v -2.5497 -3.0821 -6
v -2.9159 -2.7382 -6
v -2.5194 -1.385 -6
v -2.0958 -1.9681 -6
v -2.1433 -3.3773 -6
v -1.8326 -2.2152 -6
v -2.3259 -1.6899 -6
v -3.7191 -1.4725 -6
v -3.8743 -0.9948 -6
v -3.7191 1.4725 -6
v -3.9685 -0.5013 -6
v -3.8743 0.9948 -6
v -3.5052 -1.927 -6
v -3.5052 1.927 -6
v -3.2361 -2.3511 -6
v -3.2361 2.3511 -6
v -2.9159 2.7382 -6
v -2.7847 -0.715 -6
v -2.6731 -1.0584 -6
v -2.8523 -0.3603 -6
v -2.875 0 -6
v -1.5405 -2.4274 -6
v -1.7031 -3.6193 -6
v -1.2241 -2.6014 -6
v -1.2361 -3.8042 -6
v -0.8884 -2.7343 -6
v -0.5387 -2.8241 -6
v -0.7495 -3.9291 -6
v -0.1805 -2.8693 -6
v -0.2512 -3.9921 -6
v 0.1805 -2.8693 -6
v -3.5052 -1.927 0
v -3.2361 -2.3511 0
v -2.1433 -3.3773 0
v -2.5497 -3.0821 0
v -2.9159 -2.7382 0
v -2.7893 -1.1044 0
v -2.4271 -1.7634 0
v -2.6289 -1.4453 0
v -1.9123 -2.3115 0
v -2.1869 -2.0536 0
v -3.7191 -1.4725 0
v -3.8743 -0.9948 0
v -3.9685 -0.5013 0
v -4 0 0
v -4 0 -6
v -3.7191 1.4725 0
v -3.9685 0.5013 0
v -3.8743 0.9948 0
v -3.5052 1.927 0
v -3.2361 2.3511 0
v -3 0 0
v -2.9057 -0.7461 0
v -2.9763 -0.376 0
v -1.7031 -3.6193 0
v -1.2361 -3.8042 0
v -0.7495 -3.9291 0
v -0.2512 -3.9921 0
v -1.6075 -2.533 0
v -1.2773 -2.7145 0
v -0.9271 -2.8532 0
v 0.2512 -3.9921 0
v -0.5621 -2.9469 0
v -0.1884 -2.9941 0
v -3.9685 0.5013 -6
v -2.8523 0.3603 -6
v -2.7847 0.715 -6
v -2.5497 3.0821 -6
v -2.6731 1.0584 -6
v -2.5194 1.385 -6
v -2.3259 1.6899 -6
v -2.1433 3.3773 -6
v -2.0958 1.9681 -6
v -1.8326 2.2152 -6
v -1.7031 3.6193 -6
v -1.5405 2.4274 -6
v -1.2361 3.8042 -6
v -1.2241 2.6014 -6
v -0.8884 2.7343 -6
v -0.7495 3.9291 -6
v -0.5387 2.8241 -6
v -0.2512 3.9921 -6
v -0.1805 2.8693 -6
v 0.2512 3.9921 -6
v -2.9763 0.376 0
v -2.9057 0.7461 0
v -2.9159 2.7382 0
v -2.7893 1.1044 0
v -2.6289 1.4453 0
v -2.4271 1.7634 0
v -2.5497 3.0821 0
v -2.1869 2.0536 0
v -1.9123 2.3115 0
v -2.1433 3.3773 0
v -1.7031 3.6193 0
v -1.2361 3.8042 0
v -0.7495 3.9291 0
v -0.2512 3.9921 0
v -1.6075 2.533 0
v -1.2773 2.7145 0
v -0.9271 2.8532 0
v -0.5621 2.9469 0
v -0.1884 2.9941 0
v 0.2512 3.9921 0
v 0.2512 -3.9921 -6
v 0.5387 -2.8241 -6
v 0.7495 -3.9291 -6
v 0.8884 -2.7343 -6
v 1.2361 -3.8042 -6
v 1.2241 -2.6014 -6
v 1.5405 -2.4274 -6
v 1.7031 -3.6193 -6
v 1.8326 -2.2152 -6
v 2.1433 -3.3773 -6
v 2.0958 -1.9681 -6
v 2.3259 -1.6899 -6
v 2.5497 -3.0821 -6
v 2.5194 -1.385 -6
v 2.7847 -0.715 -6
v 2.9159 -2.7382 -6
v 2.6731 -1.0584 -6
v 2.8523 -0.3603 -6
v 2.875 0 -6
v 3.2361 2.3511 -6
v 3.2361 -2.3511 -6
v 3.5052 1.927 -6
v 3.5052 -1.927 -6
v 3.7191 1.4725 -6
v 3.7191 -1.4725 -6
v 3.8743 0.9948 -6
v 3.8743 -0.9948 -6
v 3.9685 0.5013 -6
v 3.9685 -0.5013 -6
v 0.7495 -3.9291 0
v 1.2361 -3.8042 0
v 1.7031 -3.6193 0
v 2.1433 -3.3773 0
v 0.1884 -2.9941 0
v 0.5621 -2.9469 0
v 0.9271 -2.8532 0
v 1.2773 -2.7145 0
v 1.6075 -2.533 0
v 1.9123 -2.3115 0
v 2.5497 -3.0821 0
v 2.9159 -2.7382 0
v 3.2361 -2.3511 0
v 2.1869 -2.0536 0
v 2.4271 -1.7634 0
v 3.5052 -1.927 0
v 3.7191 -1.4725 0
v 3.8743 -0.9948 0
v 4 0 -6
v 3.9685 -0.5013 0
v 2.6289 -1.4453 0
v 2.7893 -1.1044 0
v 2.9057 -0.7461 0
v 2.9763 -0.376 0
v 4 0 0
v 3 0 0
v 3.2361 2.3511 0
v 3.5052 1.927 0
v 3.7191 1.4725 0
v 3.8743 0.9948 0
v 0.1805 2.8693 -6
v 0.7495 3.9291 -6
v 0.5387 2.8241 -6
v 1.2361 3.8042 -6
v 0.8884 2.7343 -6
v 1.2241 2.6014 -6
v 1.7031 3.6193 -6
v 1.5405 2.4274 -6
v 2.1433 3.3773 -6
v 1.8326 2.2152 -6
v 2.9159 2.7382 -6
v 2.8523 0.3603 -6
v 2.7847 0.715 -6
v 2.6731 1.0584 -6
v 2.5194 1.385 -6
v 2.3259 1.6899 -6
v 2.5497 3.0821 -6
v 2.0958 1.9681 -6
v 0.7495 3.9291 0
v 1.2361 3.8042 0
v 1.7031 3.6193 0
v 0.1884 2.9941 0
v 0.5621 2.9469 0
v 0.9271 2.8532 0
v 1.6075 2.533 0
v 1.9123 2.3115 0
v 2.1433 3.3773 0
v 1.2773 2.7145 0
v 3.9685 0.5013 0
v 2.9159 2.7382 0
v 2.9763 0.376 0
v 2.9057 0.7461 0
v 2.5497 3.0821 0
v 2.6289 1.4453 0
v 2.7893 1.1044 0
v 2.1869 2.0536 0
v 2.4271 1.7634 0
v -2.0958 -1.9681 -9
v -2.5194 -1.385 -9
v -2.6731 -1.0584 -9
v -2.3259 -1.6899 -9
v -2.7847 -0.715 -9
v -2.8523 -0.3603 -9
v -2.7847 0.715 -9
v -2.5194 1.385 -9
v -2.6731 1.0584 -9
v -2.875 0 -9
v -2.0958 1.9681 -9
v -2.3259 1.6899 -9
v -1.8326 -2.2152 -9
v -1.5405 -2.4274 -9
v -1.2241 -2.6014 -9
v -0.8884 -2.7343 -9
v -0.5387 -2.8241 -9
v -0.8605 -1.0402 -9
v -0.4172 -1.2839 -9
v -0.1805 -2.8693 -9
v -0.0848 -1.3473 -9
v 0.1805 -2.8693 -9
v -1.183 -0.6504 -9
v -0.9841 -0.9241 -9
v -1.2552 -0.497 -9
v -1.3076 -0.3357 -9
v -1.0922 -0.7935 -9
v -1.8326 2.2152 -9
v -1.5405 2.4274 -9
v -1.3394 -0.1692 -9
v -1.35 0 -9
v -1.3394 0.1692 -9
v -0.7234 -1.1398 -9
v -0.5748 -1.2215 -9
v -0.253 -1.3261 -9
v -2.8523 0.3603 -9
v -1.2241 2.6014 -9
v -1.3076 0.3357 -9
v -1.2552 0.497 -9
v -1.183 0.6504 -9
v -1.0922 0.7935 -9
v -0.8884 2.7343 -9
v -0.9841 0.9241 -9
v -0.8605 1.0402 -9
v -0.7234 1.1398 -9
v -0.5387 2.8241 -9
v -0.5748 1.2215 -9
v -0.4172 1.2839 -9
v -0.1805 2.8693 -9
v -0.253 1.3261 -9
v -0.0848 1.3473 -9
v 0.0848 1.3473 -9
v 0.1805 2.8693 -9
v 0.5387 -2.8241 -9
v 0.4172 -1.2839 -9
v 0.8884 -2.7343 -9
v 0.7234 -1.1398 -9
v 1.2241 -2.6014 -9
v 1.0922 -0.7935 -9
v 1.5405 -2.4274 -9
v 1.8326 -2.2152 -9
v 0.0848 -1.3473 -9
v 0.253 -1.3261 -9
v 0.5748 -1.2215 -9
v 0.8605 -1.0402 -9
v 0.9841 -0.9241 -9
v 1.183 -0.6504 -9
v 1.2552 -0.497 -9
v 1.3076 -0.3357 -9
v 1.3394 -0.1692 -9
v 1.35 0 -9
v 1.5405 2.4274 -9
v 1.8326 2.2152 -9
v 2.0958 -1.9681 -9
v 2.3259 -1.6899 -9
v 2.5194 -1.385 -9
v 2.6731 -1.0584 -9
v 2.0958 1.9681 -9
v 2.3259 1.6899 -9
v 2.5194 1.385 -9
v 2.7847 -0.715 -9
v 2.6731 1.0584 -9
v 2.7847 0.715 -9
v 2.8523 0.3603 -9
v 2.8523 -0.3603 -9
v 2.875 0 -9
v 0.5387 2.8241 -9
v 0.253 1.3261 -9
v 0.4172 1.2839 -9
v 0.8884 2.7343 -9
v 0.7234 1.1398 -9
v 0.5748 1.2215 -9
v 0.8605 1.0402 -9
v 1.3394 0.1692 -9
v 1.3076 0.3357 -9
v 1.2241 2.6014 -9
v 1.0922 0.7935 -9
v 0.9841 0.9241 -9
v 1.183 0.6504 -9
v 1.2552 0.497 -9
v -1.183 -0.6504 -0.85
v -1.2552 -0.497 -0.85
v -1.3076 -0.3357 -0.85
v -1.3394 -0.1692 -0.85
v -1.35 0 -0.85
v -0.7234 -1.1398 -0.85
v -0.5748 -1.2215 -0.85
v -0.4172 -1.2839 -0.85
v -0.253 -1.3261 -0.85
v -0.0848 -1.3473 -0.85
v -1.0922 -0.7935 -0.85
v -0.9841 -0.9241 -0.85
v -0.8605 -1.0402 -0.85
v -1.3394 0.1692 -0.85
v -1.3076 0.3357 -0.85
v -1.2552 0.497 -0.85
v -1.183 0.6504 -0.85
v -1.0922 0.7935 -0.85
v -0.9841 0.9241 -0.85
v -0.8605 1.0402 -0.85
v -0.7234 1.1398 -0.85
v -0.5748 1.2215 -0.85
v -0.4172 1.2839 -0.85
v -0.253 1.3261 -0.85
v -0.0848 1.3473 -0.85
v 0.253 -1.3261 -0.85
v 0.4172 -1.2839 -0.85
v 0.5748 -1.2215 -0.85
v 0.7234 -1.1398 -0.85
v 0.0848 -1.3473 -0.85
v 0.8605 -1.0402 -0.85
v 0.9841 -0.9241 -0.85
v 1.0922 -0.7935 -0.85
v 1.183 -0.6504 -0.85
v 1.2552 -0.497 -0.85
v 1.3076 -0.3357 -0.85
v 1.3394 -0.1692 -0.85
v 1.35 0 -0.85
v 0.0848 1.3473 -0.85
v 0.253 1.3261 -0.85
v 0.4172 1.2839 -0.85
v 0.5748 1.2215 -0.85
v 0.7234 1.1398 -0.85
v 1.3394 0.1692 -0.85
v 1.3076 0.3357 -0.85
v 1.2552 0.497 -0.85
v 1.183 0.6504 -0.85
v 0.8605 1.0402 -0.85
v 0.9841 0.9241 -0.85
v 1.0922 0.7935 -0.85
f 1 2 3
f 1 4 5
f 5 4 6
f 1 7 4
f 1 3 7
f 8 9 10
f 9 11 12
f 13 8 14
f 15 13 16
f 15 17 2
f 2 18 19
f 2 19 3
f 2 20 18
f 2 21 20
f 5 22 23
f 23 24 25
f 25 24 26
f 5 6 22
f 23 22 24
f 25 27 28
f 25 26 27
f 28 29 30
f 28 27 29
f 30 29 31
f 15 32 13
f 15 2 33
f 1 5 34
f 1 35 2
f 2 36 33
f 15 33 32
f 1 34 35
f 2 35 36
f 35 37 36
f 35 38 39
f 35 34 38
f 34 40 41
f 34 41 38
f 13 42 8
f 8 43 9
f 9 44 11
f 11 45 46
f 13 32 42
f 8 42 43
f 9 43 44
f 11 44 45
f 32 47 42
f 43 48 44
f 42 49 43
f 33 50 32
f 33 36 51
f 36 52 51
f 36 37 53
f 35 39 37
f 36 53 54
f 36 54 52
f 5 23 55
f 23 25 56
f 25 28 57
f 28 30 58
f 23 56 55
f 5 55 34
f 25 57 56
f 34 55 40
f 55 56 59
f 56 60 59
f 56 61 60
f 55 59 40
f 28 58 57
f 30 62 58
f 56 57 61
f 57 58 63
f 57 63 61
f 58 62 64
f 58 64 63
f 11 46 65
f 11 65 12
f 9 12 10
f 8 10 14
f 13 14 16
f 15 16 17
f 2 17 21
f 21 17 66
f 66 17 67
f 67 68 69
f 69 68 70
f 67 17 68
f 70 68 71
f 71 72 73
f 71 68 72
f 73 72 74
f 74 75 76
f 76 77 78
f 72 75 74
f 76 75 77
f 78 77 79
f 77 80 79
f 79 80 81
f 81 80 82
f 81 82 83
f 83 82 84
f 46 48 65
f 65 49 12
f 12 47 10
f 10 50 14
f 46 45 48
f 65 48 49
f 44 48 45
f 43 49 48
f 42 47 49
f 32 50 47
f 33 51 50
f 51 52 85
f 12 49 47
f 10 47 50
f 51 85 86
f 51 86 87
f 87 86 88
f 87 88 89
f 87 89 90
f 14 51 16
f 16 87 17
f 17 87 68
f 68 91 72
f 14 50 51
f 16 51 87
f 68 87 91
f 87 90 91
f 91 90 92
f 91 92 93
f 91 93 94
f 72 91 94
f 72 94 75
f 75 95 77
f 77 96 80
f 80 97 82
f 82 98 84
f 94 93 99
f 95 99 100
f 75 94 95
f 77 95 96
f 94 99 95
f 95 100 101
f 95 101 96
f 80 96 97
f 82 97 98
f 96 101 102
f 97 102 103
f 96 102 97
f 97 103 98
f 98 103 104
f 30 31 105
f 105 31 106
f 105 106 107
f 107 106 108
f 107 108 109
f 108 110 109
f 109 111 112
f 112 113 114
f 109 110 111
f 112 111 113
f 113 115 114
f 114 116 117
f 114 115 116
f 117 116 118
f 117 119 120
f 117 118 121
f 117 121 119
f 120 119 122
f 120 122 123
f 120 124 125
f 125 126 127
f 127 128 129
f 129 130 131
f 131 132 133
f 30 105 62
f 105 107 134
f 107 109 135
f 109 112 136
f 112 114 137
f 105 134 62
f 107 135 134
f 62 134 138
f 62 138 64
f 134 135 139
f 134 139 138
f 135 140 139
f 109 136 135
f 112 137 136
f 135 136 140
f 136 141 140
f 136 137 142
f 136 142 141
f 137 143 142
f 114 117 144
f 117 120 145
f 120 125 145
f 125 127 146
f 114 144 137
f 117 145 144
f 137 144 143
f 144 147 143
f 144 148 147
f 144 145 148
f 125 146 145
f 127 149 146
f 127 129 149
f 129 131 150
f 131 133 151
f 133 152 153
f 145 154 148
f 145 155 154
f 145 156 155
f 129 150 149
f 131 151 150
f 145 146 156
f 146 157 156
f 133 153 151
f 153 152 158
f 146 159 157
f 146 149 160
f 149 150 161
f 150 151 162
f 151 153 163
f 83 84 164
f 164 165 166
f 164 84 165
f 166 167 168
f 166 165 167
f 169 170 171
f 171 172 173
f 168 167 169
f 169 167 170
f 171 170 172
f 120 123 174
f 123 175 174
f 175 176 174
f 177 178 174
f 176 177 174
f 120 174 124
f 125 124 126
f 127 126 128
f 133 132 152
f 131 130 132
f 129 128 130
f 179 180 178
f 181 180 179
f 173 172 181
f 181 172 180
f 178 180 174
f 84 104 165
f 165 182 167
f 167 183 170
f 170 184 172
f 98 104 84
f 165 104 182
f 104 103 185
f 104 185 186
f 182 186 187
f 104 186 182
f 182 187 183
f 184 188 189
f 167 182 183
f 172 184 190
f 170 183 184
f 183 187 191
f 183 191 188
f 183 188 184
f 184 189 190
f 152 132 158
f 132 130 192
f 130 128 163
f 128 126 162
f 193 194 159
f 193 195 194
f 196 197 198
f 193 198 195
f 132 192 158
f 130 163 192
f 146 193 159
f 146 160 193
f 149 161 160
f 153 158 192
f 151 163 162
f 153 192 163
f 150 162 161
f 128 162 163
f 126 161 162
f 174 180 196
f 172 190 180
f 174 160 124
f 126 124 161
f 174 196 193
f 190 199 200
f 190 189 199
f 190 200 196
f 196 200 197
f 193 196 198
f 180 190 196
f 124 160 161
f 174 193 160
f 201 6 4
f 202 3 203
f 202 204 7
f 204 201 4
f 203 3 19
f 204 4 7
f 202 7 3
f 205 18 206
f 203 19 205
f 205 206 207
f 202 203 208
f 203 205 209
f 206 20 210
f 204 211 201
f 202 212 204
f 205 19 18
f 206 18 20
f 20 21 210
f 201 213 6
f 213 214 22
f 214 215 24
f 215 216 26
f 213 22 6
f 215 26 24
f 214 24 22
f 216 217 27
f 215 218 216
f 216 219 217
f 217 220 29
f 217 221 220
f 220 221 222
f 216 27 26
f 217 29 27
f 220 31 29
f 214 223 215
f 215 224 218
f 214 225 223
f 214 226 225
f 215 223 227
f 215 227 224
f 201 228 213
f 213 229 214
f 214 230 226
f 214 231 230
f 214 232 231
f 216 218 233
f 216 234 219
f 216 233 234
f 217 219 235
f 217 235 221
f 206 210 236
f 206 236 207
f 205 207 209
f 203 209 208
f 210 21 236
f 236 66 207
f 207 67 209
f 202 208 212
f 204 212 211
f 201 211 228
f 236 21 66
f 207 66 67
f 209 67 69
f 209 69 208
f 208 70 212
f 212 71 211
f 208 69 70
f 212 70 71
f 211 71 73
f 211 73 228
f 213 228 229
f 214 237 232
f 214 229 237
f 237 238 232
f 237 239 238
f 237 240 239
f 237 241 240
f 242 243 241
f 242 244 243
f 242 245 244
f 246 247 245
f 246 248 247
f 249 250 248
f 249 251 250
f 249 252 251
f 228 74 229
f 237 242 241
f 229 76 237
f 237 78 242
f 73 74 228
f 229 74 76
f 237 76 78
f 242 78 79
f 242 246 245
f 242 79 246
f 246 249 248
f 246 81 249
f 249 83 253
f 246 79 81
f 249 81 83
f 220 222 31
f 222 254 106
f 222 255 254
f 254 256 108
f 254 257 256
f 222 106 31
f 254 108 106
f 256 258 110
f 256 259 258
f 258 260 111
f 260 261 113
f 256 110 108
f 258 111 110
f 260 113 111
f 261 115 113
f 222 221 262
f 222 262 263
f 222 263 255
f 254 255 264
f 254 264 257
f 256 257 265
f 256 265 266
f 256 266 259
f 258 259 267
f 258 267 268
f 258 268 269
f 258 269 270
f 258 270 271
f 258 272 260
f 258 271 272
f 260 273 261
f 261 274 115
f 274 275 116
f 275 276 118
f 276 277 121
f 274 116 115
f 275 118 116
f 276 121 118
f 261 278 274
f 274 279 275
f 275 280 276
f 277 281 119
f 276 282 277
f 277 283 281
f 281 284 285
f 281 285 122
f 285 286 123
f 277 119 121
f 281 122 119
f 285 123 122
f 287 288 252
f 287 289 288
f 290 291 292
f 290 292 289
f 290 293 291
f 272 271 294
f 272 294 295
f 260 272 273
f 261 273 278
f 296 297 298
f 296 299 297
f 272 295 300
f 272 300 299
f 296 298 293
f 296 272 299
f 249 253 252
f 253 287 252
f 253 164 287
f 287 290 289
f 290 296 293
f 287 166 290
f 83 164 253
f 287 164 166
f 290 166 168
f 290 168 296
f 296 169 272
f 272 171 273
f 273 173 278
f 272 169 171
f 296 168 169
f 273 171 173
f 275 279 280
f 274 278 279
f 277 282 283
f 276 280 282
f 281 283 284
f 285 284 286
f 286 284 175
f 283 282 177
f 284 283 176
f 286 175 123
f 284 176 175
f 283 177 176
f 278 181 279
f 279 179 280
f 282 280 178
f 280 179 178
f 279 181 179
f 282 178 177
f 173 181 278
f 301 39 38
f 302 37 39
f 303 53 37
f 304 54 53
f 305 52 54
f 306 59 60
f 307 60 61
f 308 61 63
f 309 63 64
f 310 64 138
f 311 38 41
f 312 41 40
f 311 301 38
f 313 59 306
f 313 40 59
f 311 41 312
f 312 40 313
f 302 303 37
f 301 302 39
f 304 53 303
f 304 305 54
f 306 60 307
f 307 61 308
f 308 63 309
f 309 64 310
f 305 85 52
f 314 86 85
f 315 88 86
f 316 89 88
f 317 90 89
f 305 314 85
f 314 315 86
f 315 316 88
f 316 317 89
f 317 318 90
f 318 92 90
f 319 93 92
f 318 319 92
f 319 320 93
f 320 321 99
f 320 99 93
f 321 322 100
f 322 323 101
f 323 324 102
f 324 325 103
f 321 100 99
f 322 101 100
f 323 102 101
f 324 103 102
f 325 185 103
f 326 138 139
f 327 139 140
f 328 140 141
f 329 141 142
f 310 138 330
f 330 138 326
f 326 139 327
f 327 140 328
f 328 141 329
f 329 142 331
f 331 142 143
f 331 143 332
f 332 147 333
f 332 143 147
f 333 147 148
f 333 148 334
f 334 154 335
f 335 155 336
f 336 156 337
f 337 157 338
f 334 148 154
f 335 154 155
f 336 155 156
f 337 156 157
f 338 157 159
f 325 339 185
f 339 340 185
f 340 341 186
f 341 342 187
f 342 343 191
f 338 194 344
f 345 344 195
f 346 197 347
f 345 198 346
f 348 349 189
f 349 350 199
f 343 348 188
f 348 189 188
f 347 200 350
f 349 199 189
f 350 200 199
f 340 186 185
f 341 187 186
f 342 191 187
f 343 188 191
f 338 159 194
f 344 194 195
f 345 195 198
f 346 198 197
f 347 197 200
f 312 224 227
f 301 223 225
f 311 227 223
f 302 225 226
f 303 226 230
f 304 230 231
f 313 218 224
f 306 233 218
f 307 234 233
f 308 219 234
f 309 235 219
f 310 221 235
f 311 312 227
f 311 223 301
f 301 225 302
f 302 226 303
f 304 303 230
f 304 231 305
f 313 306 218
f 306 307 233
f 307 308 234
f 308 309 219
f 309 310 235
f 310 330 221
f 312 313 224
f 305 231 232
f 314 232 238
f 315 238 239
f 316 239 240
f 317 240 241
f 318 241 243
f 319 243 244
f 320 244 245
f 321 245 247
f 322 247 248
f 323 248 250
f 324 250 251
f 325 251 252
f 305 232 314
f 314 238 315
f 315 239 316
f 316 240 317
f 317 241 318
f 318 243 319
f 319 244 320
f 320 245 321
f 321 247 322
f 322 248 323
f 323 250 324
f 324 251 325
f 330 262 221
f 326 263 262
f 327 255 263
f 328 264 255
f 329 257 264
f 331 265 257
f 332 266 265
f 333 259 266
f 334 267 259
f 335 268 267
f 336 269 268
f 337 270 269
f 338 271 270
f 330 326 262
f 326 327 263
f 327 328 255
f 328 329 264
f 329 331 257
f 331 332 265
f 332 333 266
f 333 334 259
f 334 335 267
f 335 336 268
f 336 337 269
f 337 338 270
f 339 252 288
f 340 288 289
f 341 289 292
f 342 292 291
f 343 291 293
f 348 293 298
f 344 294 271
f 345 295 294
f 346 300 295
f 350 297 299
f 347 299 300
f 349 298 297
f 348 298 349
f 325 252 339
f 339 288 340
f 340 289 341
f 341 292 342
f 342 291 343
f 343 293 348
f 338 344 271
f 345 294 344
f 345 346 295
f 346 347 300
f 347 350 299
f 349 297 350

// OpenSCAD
$fn = 50;

difference() {
	union() {
		translate(v = [0, 0, -6.0]) {
			cylinder(h = 6, r = 4.0);
		}
		#translate(v = [0, 0, -9.0]) {
			cylinder(h = 9, r = 2.875);
		}
	}
	union() {
		translate(v = [0, 0, 0]) {
			rotate(a = [0, 0, 0]) {
				difference() {
					union() {
						translate(v = [0, 0, -9.0]) {
							cylinder(h = 9, r = 1.0);
						}
						translate(v = [0, 0, -0.85]) {
							cylinder(h = 0.85, r1 = 1.35, r2 = 3.0);
						}
						translate(v = [0, 0, -9.0]) {
							cylinder(h = 9, r = 1.35);
						}
						translate(v = [0, 0, -9.0]) {
							cylinder(h = 9, r = 1.0);
						}
					}
					union();
				}
			}
		}
	}
}
